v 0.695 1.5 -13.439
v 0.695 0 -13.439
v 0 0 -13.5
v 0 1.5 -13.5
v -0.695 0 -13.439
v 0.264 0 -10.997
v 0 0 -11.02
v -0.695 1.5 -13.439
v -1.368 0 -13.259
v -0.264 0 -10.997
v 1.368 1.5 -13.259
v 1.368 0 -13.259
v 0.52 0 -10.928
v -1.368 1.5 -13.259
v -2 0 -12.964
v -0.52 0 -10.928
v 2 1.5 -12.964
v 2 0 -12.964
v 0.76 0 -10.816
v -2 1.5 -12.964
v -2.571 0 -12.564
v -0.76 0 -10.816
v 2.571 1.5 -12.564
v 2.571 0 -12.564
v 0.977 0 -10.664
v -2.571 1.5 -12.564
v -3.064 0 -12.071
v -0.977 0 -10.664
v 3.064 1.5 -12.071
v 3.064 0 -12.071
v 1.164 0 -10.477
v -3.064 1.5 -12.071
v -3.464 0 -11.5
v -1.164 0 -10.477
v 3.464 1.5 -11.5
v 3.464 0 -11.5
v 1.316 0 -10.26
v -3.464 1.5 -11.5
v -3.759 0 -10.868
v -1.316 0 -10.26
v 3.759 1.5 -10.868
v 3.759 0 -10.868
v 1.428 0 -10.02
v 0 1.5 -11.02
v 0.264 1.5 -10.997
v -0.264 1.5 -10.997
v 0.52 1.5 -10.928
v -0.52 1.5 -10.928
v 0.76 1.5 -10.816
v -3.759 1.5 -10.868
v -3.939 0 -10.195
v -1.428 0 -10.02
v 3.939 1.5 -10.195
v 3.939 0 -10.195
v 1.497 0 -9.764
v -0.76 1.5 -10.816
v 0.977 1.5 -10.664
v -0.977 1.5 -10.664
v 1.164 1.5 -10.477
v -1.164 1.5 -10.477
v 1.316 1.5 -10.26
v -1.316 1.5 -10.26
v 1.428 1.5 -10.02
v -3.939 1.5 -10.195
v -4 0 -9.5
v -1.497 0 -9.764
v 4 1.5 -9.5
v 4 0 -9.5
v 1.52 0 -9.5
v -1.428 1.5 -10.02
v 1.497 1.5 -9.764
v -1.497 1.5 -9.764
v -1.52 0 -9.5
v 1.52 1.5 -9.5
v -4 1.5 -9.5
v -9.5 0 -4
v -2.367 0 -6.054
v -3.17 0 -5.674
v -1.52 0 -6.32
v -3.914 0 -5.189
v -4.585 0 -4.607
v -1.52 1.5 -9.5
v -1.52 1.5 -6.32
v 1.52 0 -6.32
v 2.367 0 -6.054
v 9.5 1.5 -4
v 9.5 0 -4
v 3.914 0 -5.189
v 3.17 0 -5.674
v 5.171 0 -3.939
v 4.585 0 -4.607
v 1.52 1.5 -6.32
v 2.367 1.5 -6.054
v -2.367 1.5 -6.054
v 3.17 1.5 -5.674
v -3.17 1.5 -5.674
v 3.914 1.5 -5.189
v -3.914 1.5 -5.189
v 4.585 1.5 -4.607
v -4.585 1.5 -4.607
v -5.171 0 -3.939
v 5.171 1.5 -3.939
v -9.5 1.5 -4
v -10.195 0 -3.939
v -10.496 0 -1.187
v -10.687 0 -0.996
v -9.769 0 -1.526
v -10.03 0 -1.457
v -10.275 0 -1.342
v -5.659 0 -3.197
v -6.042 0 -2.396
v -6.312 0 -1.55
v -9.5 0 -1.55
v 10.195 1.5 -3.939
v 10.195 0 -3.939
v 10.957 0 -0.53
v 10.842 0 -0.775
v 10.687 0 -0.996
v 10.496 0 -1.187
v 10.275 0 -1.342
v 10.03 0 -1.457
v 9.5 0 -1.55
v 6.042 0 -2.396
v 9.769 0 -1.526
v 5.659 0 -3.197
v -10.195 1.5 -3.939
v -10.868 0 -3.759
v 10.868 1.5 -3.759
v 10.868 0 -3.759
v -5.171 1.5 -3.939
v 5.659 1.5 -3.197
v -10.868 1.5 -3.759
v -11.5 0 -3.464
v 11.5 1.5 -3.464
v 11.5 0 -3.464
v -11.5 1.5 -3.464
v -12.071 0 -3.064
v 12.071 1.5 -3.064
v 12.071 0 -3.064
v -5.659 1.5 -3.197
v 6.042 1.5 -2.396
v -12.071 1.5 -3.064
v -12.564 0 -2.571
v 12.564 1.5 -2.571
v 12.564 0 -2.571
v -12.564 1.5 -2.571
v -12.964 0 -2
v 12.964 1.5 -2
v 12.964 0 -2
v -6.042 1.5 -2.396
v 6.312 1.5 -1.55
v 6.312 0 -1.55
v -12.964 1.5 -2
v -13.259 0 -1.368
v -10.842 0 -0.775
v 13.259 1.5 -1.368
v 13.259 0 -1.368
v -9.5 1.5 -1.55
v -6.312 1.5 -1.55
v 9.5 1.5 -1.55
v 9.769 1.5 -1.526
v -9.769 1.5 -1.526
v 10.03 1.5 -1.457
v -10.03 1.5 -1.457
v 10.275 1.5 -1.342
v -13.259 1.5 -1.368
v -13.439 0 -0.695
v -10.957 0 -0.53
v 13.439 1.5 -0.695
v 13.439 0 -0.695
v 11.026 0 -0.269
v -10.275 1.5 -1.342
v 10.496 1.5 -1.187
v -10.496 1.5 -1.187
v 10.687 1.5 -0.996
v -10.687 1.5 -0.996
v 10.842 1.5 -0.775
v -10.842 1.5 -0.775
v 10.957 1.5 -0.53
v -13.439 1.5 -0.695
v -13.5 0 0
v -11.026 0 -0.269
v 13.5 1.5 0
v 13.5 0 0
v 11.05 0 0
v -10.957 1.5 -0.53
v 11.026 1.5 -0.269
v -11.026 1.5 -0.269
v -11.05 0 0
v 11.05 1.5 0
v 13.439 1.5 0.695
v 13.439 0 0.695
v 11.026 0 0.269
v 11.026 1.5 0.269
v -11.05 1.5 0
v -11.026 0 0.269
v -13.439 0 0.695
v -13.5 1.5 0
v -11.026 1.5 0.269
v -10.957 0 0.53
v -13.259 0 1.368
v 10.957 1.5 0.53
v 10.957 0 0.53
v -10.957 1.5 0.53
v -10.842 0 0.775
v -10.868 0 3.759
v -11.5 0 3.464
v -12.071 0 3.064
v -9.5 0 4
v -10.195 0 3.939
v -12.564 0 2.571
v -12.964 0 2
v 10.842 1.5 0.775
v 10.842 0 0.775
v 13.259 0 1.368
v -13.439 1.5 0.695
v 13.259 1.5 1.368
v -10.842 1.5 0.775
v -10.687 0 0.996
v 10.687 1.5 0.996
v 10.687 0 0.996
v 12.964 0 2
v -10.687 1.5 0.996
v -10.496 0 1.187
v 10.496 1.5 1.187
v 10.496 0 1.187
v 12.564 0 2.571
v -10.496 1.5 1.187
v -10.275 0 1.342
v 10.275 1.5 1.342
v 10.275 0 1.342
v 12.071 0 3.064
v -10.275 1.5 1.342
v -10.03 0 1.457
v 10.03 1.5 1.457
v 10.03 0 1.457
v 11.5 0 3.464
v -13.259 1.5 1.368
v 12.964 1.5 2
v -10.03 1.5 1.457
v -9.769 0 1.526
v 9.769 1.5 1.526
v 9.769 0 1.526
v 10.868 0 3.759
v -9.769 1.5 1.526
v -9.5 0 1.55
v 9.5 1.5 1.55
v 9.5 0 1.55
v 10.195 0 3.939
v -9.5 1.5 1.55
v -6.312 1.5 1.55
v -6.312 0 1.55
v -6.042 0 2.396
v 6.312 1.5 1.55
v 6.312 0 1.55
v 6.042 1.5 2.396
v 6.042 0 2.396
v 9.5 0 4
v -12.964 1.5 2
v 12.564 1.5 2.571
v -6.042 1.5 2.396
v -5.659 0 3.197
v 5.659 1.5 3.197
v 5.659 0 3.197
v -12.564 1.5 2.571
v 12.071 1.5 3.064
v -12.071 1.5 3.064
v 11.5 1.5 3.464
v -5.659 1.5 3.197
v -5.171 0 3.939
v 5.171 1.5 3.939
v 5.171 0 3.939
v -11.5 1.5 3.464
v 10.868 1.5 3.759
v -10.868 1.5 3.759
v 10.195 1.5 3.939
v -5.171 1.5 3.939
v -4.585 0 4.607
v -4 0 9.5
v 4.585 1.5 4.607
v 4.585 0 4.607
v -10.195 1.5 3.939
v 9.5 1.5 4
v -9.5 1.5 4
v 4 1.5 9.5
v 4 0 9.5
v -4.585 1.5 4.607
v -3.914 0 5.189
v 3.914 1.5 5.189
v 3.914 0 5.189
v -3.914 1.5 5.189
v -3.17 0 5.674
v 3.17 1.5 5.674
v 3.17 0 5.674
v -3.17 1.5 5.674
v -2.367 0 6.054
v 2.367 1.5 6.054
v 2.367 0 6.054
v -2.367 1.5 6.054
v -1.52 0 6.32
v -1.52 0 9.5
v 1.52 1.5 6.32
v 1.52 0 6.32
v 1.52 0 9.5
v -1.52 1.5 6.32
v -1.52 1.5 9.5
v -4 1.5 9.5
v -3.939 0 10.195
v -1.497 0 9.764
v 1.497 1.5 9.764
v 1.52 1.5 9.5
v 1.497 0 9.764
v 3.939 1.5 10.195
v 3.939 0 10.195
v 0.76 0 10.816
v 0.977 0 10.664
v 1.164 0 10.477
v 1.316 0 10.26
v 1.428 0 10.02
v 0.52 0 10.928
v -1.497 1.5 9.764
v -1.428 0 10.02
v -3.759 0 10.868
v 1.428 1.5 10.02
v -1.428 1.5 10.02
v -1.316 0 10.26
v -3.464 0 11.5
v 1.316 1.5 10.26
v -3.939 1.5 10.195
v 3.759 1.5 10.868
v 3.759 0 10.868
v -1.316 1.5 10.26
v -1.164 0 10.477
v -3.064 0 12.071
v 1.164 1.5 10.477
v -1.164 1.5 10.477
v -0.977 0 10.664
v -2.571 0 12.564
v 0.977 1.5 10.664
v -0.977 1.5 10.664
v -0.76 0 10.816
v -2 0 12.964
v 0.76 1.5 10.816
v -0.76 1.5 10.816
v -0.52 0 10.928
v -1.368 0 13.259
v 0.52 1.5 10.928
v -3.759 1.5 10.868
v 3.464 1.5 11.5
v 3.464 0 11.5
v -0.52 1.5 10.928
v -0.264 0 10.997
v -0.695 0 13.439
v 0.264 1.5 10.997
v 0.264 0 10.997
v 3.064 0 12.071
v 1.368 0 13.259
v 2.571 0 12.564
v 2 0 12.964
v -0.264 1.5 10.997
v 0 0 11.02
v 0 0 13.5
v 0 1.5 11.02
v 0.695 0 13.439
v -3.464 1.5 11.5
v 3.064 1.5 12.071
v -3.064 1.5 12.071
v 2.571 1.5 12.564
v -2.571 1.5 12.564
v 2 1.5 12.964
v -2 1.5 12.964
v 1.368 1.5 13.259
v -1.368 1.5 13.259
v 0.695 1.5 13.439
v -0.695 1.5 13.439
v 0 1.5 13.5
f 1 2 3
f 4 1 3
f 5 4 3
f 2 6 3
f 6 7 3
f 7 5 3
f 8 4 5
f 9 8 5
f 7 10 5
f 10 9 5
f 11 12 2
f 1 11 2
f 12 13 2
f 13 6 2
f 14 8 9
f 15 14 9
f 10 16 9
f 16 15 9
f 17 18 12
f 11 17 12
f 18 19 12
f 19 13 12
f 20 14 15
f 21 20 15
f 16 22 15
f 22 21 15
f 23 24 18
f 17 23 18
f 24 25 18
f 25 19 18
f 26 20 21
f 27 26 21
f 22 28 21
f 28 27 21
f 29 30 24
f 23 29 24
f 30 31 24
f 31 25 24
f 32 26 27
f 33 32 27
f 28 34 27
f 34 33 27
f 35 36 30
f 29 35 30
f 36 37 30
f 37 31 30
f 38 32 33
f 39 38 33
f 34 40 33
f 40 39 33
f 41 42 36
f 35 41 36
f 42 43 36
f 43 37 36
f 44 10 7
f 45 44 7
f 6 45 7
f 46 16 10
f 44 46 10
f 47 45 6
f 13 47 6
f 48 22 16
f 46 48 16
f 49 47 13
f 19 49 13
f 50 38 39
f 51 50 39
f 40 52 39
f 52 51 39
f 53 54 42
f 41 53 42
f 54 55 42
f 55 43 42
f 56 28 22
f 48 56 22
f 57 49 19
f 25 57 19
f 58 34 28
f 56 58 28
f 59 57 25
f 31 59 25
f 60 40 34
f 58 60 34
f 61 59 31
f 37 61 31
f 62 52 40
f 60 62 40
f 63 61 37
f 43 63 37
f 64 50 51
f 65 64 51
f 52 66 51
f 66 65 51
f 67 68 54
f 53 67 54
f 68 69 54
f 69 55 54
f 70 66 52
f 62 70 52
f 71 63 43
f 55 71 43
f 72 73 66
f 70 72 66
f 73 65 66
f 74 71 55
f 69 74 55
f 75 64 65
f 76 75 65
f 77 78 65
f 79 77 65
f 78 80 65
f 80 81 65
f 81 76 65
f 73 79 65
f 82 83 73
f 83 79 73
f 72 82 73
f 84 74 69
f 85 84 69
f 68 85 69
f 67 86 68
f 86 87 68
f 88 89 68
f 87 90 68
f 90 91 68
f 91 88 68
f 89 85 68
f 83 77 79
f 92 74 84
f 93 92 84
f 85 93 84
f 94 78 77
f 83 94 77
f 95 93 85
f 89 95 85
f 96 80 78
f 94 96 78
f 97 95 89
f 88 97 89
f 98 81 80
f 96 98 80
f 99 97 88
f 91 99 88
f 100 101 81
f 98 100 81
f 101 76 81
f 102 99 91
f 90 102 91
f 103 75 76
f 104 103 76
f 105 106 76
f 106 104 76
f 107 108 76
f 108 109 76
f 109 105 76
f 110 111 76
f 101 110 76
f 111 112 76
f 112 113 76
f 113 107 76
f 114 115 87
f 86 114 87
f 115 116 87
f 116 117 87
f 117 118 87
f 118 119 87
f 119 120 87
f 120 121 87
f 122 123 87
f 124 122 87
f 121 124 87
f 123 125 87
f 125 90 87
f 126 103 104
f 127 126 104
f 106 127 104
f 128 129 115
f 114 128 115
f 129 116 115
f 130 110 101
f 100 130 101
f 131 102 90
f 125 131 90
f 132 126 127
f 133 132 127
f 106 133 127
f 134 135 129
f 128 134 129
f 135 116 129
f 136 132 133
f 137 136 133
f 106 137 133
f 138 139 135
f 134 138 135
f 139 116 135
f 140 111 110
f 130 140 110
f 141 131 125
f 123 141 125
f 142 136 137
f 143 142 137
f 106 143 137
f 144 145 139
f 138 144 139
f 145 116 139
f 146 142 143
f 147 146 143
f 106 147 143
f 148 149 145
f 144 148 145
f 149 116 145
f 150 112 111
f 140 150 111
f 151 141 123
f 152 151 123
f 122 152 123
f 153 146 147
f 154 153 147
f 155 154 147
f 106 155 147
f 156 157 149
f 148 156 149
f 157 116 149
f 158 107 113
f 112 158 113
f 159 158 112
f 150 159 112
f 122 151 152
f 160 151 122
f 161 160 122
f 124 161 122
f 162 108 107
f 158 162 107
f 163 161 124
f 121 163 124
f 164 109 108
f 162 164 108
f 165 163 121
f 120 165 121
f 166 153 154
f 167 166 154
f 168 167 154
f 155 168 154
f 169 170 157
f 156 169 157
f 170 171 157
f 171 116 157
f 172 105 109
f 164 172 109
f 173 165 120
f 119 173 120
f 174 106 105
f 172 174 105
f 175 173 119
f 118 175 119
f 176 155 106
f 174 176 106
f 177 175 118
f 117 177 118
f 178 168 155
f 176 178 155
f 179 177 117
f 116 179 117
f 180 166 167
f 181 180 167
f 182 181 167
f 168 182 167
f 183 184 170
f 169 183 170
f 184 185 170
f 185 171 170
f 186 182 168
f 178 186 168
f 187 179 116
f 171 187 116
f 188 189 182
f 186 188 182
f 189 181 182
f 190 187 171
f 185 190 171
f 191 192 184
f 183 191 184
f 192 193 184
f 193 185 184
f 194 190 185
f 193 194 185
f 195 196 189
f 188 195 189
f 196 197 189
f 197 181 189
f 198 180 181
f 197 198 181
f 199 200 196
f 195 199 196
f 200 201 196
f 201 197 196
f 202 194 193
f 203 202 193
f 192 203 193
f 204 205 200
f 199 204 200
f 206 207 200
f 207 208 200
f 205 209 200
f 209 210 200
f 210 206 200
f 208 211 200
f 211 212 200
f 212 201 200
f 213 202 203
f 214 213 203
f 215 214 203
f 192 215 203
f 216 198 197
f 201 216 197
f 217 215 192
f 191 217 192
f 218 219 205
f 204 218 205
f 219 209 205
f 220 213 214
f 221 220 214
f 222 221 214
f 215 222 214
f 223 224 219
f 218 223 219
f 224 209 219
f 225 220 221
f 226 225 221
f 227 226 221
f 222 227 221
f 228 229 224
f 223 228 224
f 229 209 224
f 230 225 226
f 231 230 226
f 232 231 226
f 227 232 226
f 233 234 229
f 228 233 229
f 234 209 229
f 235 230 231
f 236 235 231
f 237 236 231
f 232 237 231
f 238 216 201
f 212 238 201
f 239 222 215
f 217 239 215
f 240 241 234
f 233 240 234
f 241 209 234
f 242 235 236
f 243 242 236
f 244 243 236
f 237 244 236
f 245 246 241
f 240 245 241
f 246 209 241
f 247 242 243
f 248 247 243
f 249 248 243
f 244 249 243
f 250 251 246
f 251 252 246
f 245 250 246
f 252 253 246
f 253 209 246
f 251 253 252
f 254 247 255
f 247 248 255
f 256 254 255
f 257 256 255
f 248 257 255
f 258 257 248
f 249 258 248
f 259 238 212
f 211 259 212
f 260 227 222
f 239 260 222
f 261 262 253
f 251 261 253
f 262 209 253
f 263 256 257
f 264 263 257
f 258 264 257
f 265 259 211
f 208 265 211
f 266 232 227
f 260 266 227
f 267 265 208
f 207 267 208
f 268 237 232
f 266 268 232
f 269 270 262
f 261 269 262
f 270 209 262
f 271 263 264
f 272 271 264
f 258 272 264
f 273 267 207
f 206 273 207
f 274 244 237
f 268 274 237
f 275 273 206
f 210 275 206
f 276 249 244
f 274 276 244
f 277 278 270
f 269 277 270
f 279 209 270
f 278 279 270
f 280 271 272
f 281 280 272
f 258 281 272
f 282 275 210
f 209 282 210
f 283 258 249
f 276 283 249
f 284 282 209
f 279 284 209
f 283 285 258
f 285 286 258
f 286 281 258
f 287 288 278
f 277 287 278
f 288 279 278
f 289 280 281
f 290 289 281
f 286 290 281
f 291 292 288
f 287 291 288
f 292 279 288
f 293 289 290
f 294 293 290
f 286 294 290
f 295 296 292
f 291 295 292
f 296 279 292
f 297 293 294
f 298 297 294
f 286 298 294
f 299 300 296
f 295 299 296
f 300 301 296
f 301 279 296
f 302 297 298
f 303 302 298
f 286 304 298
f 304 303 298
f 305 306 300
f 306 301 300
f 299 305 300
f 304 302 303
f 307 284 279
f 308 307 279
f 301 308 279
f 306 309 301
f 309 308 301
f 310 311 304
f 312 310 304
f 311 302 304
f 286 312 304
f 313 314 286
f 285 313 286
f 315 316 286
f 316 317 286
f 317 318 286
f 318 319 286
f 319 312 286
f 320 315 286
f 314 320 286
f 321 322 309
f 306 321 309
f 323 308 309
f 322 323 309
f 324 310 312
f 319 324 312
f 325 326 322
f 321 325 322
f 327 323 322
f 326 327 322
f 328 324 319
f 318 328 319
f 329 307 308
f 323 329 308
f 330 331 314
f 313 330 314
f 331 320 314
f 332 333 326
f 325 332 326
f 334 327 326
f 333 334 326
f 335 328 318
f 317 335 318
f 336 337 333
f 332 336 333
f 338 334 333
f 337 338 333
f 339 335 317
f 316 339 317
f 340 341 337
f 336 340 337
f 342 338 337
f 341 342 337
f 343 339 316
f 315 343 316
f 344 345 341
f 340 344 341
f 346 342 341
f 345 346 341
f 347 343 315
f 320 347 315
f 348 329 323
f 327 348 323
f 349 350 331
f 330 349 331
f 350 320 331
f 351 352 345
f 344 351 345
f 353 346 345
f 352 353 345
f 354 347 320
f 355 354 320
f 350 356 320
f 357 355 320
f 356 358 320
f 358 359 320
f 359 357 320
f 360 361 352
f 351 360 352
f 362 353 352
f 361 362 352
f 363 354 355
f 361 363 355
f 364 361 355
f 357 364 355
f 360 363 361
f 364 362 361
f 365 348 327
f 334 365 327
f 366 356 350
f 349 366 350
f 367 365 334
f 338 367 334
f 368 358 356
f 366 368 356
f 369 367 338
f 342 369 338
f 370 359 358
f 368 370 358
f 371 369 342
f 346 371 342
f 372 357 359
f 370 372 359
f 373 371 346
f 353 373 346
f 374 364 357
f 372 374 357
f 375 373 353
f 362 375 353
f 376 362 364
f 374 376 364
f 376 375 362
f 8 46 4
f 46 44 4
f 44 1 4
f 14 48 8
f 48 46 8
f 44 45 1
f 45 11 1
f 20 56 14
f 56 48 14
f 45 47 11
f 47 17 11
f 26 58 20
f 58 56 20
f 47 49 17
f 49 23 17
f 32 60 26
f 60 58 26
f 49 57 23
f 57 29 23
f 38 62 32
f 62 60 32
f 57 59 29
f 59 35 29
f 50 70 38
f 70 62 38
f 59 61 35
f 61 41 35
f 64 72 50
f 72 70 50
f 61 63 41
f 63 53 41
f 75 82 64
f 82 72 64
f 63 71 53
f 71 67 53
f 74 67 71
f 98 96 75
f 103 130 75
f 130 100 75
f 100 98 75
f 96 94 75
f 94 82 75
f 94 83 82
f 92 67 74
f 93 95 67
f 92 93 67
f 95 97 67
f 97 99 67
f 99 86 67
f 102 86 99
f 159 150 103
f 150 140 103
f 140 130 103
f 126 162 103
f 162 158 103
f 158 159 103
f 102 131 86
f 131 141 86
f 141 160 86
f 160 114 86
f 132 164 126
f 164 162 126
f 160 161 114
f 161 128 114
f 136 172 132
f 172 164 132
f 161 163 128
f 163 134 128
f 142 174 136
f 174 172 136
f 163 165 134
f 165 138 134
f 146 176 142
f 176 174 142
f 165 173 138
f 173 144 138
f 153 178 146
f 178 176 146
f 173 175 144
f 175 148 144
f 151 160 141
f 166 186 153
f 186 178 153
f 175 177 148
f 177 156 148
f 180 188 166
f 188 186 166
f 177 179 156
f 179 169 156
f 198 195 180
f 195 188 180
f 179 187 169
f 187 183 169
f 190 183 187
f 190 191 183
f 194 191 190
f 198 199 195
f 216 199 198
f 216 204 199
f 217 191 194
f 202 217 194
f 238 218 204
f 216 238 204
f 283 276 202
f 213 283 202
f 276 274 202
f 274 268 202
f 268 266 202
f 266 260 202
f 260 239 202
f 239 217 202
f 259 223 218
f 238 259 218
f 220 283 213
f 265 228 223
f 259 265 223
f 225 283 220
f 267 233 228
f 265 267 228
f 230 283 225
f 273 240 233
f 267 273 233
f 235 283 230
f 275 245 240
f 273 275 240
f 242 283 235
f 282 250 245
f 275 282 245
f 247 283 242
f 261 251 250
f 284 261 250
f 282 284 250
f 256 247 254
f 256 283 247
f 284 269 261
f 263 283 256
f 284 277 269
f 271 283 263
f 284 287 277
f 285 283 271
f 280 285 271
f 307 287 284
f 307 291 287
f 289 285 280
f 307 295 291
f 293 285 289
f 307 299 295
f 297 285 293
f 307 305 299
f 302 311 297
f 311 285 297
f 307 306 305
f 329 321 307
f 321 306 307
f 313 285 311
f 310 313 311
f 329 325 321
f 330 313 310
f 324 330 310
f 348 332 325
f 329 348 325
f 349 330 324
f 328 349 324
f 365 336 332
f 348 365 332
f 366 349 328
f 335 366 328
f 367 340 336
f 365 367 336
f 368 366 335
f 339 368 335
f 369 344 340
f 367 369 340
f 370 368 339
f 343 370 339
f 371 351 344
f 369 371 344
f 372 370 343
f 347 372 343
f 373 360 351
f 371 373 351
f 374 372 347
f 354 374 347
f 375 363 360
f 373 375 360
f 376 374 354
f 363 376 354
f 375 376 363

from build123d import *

# Parameters (mm, degrees)
BOSS_EXTRUDE1_DEPTH = 1.5


with BuildPart() as part:
    # Sketch10 → Boss-Extrude1 (new body)
    with BuildSketch(Plane(origin=(0, 0, 0), x_dir=(1, 0, 0), z_dir=(0, 1, 0))):
        with BuildLine():
            ThreePointArc((-9.5, 4), (-13.5, 0), (-9.5, -4))
            Line((-9.5, -4), (-4, -9.5))
            ThreePointArc((-4, -9.5), (0, -13.5), (4, -9.5))
            Line((4, -9.5), (9.5, -4))
            ThreePointArc((9.5, -4), (13.5, 0), (9.5, 4))
            Line((9.5, 4), (4, 9.5))
            ThreePointArc((4, 9.5), (0, 13.5), (-4, 9.5))
            Line((-4, 9.5), (-9.5, 4))
        make_face()
        with BuildLine():
            ThreePointArc((-9.5, -1.55), (-11.05, 0), (-9.5, 1.55))
            Line((-9.5, 1.55), (-6.312487624, 1.55))
            ThreePointArc((-6.312487624, 1.55), (-4.58526578, 4.607096453), (-1.52, 6.319778477))
            Line((-1.52, 6.319778477), (-1.52, 9.5))
            ThreePointArc((-1.52, 9.5), (0, 11.02), (1.52, 9.5))
            Line((1.52, 9.5), (1.52, 6.319778477))
            ThreePointArc((1.52, 6.319778477), (4.58526578, 4.607096453), (6.312487624, 1.55))
            Line((6.312487624, 1.55), (9.5, 1.55))
            ThreePointArc((9.5, 1.55), (11.05, 0), (9.5, -1.55))
            Line((9.5, -1.55), (6.312487624, -1.55))
            ThreePointArc((6.312487624, -1.55), (4.58526578, -4.607096453), (1.52, -6.319778477))
            Line((1.52, -6.319778477), (1.52, -9.5))
            ThreePointArc((1.52, -9.5), (0, -11.02), (-1.52, -9.5))
            Line((-1.52, -9.5), (-1.52, -6.319778477))
            ThreePointArc((-1.52, -6.319778477), (-4.58526578, -4.607096453), (-6.312487624, -1.55))
            Line((-6.312487624, -1.55), (-9.5, -1.55))
        make_face(mode=Mode.SUBTRACT)
    extrude(amount=BOSS_EXTRUDE1_DEPTH)


solid = part.part
